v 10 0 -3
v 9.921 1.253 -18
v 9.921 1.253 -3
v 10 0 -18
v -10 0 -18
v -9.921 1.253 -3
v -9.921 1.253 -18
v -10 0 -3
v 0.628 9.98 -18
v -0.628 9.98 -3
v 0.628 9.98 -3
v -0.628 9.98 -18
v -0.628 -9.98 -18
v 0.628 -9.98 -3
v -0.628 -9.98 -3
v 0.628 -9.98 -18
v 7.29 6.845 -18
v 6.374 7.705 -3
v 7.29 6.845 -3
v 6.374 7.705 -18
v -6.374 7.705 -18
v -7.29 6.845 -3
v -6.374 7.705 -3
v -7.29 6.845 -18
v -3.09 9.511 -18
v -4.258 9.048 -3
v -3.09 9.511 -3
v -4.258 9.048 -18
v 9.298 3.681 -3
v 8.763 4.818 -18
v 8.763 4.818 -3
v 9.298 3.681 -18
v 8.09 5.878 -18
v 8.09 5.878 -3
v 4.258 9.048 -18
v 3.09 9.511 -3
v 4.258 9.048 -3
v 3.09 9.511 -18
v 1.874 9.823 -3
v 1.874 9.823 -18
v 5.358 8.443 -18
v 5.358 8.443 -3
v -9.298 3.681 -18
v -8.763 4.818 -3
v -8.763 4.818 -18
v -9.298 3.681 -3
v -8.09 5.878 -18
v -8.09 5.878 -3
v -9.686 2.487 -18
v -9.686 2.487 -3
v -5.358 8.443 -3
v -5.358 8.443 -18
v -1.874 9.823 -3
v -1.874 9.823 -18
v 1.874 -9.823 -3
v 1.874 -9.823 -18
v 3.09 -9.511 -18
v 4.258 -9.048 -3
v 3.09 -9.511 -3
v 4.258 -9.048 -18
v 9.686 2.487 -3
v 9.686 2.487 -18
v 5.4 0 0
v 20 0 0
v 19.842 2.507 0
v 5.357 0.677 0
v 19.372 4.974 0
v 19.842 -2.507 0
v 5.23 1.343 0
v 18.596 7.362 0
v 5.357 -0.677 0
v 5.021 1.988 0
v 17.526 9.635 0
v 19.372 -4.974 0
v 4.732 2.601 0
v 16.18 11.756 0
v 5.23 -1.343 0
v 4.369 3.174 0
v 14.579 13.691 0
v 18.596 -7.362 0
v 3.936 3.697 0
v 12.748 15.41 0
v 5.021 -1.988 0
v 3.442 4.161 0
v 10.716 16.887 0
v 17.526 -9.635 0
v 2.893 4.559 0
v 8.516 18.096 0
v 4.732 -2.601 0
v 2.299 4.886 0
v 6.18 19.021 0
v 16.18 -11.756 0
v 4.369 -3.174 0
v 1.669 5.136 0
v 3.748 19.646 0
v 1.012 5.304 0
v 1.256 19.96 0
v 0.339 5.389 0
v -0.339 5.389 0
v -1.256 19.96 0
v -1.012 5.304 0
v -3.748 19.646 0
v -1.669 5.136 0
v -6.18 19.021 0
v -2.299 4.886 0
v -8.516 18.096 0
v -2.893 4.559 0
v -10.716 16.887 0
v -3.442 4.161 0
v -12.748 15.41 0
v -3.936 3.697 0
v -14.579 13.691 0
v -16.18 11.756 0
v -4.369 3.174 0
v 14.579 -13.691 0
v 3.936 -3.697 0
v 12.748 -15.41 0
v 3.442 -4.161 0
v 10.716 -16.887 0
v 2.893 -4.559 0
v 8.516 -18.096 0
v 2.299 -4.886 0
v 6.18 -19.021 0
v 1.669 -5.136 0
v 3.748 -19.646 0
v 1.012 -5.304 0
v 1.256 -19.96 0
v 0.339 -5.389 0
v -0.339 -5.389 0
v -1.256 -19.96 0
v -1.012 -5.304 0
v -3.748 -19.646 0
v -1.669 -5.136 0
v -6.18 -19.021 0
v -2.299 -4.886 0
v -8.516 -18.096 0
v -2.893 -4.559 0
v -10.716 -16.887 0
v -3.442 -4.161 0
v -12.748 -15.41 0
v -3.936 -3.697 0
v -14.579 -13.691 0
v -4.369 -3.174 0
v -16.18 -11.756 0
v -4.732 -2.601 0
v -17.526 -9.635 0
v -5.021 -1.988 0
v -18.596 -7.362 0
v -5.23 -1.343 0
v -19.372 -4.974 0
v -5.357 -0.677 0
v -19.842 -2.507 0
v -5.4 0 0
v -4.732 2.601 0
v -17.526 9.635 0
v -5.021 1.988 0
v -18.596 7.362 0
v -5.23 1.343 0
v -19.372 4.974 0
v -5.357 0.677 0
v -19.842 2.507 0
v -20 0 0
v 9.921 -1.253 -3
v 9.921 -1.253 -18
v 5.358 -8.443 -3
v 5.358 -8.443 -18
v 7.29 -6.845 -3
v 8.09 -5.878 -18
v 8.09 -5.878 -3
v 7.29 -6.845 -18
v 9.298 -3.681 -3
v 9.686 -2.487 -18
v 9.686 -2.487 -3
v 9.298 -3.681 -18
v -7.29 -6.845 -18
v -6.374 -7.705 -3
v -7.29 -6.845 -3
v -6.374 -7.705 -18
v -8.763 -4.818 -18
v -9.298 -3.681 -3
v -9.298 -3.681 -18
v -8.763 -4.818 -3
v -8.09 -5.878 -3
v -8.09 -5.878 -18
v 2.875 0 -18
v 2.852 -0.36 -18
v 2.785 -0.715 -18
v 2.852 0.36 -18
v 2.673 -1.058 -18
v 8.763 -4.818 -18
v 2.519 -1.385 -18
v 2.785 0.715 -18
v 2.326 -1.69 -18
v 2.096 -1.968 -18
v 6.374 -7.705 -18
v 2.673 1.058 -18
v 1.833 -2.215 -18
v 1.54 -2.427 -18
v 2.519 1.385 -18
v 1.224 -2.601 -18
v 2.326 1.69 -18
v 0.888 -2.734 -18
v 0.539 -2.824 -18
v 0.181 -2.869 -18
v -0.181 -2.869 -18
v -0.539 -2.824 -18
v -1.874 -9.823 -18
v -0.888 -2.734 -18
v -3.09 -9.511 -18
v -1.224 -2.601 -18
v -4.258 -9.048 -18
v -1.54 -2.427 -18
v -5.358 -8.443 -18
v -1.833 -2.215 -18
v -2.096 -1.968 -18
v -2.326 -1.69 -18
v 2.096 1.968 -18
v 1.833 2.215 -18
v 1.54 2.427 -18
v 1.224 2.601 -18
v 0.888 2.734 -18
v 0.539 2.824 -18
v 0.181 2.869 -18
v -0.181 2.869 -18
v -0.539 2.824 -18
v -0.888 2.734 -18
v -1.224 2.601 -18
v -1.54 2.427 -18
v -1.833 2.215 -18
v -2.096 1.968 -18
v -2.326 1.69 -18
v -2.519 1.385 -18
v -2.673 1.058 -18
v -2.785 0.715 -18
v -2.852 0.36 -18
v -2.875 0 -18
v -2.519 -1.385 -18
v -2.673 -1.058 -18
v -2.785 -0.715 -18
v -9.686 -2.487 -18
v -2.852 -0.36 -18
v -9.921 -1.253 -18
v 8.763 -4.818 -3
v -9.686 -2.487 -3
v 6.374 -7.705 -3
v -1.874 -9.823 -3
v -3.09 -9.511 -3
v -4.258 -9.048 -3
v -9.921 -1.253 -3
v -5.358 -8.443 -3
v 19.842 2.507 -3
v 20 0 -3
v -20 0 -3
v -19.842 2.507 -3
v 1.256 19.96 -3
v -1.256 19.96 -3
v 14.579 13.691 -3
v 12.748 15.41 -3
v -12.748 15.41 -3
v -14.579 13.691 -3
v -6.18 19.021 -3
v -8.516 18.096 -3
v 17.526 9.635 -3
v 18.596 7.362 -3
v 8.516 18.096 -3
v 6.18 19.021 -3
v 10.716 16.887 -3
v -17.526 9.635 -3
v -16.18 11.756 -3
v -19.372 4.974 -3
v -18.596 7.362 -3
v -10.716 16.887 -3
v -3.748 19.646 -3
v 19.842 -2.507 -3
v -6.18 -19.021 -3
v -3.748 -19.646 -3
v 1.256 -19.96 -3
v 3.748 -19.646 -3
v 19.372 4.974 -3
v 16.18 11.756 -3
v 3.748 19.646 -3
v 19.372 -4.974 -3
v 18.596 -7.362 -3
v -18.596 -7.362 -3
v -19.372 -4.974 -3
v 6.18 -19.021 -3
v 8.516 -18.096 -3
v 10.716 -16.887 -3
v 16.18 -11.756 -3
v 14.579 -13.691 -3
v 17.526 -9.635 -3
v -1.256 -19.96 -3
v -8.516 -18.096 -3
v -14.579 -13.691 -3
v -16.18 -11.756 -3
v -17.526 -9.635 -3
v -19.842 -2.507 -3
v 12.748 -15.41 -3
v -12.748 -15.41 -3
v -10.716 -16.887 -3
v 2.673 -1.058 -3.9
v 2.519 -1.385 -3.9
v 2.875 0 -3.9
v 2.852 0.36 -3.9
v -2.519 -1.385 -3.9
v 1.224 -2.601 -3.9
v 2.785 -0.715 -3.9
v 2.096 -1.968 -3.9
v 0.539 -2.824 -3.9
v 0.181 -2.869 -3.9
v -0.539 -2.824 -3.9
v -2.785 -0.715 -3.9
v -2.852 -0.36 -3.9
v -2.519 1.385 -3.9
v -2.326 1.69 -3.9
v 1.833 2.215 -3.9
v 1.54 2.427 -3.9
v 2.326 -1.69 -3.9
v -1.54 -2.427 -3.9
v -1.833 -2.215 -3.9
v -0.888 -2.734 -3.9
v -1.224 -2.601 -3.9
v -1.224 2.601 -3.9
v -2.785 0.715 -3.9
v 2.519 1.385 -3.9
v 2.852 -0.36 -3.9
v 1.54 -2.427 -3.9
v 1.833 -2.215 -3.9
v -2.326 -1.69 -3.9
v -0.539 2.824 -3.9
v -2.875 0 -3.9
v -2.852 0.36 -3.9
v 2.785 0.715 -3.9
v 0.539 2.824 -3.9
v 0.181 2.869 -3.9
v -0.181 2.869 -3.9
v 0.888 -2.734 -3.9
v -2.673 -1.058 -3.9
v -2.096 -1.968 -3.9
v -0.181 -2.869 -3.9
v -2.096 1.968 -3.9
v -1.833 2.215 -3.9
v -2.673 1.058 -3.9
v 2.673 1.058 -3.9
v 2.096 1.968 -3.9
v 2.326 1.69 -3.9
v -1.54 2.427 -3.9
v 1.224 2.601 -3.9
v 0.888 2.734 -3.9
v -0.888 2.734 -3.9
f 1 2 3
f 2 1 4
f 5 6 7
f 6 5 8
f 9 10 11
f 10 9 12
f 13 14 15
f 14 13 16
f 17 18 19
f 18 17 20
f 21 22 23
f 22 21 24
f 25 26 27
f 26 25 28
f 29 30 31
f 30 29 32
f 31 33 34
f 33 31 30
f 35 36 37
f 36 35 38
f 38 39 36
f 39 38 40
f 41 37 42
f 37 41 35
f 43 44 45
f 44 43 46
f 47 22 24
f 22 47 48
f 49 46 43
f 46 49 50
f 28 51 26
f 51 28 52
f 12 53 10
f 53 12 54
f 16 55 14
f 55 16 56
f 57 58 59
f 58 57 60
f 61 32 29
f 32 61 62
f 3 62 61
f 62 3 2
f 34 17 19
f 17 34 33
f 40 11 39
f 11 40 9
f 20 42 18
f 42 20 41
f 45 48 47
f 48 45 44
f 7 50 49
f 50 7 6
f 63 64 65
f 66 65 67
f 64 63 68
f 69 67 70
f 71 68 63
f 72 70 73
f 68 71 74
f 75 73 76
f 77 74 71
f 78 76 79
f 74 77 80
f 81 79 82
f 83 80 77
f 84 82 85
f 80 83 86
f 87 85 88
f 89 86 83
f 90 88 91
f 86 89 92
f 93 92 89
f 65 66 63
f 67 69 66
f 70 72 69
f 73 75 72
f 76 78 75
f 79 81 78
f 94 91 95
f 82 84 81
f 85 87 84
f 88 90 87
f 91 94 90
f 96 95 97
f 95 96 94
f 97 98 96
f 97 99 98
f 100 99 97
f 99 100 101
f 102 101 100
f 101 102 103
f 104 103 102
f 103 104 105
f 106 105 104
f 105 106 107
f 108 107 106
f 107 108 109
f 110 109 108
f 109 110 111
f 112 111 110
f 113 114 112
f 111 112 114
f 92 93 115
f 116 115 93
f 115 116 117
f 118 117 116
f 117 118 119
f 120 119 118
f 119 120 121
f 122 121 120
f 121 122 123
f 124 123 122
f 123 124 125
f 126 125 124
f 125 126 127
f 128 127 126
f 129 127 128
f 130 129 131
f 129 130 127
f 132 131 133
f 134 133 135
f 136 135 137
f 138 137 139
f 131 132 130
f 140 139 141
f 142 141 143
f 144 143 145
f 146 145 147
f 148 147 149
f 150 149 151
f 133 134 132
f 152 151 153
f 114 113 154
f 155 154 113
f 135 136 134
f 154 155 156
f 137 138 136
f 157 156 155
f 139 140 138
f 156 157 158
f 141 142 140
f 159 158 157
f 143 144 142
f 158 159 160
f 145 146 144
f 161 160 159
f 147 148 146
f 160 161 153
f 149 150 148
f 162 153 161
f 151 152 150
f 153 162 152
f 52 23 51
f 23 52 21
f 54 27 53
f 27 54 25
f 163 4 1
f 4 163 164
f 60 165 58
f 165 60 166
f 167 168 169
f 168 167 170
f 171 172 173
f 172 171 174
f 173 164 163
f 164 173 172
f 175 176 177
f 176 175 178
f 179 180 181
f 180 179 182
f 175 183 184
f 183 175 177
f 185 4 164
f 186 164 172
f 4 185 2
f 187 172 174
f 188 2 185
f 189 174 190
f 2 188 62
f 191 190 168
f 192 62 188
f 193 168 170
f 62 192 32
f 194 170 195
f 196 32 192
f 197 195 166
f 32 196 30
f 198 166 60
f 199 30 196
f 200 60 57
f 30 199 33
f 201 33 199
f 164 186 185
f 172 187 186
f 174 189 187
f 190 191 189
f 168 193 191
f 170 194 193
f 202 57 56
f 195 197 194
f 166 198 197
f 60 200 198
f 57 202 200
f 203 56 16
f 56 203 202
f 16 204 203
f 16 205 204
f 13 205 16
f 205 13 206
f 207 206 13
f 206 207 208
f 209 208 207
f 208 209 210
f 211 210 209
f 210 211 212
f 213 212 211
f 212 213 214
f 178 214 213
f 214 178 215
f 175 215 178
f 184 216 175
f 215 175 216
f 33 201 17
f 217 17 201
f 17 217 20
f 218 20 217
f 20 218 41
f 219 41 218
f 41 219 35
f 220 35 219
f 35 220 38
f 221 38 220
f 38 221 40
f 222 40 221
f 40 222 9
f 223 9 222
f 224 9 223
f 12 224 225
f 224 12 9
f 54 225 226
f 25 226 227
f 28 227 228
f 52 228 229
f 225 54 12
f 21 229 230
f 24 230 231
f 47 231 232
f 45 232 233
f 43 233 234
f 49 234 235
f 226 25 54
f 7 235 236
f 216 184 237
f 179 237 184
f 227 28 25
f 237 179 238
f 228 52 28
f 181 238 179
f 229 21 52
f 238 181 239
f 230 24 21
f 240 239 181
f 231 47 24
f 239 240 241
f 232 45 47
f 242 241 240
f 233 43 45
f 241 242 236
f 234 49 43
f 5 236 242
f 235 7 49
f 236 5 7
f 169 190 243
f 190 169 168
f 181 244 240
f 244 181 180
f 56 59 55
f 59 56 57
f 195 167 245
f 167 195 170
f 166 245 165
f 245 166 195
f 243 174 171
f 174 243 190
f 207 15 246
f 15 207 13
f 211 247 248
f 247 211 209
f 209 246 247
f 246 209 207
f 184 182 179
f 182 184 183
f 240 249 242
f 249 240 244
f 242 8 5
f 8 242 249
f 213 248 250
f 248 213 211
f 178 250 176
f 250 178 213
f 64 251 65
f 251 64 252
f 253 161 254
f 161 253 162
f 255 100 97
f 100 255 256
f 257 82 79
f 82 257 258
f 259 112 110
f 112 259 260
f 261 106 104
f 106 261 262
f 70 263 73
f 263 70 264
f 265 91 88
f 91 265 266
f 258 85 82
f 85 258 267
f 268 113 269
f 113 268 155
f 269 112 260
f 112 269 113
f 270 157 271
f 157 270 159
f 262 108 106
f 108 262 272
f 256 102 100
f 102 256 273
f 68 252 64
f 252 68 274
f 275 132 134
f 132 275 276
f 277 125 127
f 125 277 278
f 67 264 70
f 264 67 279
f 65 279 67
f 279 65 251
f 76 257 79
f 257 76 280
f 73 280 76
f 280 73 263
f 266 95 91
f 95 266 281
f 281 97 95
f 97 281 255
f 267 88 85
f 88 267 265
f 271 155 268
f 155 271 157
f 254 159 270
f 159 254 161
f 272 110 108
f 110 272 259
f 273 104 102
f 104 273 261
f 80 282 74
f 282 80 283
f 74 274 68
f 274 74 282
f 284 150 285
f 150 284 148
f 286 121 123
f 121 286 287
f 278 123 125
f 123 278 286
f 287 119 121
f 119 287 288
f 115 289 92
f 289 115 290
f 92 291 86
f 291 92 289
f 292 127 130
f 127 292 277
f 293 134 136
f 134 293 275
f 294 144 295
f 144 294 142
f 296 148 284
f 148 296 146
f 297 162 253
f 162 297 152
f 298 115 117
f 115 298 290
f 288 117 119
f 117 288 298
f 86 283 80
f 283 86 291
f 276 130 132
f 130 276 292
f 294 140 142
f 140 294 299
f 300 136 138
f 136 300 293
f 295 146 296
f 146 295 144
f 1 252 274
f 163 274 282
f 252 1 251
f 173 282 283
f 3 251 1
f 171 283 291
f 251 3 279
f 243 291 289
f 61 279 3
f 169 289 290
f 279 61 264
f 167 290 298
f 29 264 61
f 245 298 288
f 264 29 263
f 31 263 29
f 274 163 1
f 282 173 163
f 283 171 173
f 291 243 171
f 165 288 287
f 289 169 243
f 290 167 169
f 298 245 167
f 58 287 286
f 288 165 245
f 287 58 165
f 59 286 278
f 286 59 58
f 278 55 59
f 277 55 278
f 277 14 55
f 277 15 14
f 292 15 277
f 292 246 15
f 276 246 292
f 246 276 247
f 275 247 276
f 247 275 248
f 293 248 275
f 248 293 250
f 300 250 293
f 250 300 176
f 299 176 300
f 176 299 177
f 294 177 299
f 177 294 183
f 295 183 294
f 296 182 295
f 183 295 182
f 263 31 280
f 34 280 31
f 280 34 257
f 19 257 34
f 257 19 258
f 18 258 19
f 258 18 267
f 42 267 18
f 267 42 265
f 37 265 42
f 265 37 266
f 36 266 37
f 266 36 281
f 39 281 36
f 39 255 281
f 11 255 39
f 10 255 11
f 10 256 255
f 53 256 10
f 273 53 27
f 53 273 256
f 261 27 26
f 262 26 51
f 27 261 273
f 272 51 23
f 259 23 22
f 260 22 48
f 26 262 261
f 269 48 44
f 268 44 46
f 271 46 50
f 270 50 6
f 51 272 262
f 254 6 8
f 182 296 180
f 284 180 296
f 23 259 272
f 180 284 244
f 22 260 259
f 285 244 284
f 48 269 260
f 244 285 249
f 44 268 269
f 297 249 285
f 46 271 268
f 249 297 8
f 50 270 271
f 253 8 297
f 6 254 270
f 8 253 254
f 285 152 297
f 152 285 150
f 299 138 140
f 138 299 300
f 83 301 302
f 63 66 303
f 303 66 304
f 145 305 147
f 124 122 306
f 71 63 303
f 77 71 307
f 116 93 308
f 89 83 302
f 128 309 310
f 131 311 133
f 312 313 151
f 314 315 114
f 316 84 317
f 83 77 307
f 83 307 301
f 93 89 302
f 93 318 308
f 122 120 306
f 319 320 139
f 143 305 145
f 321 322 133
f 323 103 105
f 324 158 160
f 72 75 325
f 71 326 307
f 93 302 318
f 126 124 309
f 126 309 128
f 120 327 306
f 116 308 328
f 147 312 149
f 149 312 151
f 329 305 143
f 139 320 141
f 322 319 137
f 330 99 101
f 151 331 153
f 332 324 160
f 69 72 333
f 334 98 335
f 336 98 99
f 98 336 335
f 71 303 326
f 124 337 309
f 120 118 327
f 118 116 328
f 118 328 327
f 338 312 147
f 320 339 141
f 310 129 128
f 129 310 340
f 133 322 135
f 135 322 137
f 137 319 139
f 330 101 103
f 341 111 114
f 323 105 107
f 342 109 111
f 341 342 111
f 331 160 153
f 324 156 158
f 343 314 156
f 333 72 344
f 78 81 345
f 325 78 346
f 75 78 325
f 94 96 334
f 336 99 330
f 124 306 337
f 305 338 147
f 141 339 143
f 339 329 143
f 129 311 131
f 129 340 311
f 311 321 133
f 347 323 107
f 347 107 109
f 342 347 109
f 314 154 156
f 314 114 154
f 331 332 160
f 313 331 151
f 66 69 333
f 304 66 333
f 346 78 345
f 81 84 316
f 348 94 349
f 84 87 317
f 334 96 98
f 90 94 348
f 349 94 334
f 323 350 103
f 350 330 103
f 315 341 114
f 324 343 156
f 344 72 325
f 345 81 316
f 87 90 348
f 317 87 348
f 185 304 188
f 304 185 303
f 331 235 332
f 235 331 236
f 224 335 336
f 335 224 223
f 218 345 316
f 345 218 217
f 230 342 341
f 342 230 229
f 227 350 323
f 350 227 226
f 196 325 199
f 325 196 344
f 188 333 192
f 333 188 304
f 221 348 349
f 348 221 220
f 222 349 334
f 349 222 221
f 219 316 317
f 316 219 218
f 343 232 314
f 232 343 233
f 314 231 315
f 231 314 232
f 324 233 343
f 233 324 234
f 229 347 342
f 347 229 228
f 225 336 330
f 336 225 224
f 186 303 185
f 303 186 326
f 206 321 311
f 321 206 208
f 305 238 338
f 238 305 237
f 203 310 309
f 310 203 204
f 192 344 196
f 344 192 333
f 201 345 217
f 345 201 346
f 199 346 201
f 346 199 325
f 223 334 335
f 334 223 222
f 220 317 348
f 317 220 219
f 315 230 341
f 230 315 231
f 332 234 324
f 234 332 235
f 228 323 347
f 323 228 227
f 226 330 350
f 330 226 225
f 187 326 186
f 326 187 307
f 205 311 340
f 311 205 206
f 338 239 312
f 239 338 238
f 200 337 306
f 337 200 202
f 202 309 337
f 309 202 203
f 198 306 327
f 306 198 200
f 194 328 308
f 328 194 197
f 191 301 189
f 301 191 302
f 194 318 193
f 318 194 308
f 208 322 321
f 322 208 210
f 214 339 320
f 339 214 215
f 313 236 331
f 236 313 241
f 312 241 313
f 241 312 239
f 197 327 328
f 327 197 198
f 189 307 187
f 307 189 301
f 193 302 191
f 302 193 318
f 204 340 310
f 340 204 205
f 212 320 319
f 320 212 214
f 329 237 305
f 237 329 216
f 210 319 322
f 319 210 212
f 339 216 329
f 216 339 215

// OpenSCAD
$fn = 50;


difference() {
	union() {
		translate(v = [0, 0, -18.0000000000]) {
			cylinder(h = 18, r = 10.0000000000);
		}
		translate(v = [0, 0, -3.0000000000]) {
			cylinder(h = 3, r = 20.0000000000);
		}
	}
	union() {
		translate(v = [0, 0, 0]) {
			rotate(a = [0, 0, 0]) {
				difference() {
					union() {
						#translate(v = [0, 0, -18.0000000000]) {
							cylinder(h = 18, r = 2.6000000000);
						}
						#translate(v = [0, 0, -3.9000000000]) {
							cylinder(h = 3.9000000000, r = 10.0000000000, r1 = 2.8750000000, r2 = 5.4000000000);
						}
						#translate(v = [0, 0, -18.0000000000]) {
							cylinder(h = 18, r = 2.8750000000);
						}
						#translate(v = [0, 0, -18.0000000000]) {
							cylinder(h = 18, r = 2.6000000000);
						}
					}
					union();
				}
			}
		}
	}
}
